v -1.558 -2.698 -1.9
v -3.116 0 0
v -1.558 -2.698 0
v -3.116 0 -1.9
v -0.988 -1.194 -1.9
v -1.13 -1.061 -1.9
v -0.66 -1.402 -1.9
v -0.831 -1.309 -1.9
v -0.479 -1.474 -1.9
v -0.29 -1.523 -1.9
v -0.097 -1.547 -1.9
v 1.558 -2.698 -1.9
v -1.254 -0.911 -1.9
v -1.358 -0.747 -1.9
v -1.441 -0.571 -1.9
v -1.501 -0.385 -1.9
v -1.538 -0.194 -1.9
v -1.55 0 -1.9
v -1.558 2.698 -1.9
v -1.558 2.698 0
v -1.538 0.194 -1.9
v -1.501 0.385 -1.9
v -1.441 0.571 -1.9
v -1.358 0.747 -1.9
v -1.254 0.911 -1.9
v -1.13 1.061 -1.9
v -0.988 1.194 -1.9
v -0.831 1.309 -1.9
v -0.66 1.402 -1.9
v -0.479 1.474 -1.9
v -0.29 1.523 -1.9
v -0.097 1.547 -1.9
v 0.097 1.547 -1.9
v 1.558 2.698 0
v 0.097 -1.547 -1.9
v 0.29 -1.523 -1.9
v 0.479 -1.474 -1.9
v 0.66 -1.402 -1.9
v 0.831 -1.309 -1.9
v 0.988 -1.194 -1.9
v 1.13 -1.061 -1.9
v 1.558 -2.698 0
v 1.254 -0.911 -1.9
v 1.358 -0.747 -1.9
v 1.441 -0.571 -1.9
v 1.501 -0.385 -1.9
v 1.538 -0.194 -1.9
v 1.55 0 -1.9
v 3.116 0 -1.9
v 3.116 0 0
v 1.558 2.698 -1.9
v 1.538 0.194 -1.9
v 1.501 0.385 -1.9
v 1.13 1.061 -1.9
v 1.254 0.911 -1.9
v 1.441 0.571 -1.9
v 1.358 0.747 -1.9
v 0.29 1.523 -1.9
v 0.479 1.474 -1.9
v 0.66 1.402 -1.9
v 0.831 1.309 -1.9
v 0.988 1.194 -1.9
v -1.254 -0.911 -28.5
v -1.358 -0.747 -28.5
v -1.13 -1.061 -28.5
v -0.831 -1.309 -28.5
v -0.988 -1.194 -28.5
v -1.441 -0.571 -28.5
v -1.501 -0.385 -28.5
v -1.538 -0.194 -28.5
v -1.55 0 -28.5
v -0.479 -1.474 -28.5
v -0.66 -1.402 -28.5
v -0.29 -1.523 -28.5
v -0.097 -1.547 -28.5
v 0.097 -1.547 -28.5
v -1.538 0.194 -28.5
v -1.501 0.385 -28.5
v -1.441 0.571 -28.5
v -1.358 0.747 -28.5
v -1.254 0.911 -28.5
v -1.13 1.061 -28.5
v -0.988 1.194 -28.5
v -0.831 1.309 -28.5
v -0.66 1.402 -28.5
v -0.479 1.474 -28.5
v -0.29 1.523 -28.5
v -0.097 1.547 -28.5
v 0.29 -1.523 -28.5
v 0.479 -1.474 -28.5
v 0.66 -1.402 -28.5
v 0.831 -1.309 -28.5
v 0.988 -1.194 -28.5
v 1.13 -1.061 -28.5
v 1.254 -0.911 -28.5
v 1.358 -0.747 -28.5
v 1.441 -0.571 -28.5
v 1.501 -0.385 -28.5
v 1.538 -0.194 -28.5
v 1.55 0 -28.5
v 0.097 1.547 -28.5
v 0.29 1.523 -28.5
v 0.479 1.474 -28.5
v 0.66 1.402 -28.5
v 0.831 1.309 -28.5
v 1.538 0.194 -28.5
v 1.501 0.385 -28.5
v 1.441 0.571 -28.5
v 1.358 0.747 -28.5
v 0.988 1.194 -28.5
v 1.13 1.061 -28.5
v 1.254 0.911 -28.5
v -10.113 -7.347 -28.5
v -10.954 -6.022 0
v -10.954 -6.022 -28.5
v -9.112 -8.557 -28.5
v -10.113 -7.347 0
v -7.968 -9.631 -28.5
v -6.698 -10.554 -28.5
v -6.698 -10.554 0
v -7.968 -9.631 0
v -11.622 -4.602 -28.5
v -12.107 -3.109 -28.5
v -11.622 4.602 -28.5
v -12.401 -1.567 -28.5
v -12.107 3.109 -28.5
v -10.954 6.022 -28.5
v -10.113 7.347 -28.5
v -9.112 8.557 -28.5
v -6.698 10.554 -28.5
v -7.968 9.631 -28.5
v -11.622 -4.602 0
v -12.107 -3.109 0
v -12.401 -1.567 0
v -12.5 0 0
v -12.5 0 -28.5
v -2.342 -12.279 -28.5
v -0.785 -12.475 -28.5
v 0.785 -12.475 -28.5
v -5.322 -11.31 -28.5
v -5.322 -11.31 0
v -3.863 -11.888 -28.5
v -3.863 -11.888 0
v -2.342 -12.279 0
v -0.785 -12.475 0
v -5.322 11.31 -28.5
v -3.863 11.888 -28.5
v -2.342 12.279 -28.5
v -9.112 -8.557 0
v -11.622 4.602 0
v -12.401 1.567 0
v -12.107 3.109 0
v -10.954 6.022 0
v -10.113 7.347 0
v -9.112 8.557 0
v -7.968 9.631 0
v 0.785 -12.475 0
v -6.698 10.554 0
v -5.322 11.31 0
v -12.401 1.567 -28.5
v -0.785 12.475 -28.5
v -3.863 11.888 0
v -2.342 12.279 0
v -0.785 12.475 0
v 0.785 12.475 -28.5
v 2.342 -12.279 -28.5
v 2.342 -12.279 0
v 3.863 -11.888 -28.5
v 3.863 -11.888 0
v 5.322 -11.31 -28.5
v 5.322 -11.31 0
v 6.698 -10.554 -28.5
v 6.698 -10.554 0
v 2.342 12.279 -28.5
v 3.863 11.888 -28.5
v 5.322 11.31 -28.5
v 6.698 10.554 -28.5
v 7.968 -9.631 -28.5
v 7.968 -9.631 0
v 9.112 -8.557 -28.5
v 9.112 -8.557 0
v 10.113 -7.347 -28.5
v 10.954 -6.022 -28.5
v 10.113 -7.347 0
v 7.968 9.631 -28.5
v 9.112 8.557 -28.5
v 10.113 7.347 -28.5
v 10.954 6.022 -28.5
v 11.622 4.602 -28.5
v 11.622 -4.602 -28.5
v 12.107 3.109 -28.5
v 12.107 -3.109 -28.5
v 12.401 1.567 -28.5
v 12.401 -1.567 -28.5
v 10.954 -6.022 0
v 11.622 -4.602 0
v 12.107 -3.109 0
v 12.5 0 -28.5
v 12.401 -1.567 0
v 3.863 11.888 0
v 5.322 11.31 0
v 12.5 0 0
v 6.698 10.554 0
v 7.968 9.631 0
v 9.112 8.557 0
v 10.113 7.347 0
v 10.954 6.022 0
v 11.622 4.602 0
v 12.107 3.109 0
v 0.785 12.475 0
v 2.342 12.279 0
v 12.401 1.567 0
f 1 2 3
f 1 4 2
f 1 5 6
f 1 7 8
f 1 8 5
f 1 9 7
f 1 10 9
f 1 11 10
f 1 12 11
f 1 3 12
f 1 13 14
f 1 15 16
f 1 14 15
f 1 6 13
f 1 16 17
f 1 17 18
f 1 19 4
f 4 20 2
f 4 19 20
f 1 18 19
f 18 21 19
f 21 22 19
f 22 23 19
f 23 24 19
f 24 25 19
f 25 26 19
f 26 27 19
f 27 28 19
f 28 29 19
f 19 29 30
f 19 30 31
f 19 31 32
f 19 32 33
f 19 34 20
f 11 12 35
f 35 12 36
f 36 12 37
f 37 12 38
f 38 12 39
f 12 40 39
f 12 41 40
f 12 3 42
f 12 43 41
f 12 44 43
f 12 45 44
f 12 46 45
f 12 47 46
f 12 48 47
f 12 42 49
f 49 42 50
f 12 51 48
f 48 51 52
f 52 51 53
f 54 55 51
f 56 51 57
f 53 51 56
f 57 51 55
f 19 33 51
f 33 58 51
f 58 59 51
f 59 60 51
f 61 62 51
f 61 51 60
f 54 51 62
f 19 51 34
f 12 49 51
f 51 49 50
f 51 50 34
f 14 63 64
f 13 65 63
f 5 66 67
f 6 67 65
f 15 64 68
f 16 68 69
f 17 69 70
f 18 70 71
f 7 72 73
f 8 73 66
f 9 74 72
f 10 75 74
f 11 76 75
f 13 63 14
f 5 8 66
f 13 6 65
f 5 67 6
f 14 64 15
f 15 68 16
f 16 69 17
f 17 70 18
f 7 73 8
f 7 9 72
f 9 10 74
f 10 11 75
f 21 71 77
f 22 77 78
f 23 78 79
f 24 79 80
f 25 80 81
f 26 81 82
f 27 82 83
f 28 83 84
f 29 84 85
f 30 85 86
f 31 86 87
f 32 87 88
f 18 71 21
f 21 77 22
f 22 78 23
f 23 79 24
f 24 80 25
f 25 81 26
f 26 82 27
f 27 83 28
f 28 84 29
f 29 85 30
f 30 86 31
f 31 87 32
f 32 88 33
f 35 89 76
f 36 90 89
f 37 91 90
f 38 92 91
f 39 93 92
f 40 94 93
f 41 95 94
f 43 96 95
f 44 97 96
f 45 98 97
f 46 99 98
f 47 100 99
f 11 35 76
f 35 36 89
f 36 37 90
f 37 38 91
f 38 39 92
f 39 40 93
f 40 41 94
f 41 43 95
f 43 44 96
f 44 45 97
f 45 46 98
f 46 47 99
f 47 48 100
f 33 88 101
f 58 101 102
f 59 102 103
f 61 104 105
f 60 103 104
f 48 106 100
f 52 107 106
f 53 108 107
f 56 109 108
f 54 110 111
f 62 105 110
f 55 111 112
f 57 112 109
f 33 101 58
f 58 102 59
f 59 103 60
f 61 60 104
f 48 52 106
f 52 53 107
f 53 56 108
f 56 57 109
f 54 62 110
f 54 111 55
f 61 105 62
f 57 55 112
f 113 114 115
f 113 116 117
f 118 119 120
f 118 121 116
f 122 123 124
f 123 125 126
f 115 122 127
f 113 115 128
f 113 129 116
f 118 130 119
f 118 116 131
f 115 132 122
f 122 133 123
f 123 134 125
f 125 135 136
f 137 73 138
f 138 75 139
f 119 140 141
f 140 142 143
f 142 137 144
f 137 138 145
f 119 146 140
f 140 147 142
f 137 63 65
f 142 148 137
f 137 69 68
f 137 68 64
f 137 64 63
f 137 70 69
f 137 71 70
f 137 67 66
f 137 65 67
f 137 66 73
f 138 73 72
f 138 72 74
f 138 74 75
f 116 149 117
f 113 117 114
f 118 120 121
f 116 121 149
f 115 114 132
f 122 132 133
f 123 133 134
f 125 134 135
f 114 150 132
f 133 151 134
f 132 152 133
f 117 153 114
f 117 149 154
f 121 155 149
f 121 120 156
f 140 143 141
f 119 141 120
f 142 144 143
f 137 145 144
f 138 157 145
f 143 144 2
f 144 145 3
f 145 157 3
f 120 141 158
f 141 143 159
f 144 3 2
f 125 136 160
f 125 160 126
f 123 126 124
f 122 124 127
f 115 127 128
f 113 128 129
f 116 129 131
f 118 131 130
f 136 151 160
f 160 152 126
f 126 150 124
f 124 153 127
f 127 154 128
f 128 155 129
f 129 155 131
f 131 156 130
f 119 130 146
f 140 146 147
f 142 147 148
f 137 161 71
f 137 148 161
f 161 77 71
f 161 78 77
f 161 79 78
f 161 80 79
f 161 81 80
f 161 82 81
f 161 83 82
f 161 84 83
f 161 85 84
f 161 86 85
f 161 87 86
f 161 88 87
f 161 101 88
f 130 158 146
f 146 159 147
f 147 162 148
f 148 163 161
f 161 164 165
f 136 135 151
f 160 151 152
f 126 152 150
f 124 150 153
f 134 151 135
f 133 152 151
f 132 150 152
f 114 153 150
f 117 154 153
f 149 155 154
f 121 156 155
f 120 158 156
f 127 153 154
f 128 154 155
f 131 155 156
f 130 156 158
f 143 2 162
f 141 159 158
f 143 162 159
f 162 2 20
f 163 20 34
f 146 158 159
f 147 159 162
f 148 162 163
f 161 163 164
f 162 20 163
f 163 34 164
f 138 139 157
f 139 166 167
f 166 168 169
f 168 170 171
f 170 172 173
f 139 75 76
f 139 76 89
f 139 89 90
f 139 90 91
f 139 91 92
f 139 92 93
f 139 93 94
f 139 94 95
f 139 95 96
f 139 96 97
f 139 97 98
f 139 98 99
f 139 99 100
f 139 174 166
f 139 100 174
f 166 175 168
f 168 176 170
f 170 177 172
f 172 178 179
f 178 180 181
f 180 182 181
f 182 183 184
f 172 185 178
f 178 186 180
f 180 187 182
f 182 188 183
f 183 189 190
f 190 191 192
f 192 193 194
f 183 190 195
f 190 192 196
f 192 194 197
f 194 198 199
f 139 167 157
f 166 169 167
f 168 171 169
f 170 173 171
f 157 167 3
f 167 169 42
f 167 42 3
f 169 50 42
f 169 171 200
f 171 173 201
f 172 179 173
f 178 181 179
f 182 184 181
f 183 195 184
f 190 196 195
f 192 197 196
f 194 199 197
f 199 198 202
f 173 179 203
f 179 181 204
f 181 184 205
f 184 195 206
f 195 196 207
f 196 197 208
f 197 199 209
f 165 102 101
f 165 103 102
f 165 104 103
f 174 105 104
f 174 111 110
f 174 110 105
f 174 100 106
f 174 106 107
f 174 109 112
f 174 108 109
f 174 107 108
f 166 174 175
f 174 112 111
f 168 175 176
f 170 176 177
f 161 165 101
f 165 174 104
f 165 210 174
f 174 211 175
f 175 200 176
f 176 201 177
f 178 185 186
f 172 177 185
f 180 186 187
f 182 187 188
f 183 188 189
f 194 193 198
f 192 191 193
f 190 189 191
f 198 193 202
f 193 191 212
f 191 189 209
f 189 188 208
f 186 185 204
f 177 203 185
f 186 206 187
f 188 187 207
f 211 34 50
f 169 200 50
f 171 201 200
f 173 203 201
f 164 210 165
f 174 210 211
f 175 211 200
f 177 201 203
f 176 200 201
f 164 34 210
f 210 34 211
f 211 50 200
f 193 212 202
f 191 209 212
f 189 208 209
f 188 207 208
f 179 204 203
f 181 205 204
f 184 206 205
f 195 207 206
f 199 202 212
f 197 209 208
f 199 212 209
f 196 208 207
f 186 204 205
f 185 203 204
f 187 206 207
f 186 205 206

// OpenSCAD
$fn = 50;


difference() {
	union() {
		translate(v = [0, 0, -28.5000000000]) {
			cylinder(h = 28.5000000000, r = 12.5000000000);
		}
	}
	union() {
		translate(v = [0, 0, 0]) {
			rotate(a = [0, 0, 0]) {
				difference() {
					union() {
						translate(v = [0, 0, -1.9000000000]) {
							linear_extrude(height = 1.9000000000) {
								polygon(points = [[3.1158000000, 0.0000000000], [1.5579000000, 2.6983619531], [-1.5579000000, 2.6983619531], [-3.1158000000, 0.0000000000], [-1.5579000000, -2.6983619531], [1.5579000000, -2.6983619531]]);
							}
						}
					}
					union();
				}
			}
		}
		#translate(v = [0, 0, -100.0000000000]) {
			cylinder(h = 200, r = 1.5500000000);
		}
	}
}
